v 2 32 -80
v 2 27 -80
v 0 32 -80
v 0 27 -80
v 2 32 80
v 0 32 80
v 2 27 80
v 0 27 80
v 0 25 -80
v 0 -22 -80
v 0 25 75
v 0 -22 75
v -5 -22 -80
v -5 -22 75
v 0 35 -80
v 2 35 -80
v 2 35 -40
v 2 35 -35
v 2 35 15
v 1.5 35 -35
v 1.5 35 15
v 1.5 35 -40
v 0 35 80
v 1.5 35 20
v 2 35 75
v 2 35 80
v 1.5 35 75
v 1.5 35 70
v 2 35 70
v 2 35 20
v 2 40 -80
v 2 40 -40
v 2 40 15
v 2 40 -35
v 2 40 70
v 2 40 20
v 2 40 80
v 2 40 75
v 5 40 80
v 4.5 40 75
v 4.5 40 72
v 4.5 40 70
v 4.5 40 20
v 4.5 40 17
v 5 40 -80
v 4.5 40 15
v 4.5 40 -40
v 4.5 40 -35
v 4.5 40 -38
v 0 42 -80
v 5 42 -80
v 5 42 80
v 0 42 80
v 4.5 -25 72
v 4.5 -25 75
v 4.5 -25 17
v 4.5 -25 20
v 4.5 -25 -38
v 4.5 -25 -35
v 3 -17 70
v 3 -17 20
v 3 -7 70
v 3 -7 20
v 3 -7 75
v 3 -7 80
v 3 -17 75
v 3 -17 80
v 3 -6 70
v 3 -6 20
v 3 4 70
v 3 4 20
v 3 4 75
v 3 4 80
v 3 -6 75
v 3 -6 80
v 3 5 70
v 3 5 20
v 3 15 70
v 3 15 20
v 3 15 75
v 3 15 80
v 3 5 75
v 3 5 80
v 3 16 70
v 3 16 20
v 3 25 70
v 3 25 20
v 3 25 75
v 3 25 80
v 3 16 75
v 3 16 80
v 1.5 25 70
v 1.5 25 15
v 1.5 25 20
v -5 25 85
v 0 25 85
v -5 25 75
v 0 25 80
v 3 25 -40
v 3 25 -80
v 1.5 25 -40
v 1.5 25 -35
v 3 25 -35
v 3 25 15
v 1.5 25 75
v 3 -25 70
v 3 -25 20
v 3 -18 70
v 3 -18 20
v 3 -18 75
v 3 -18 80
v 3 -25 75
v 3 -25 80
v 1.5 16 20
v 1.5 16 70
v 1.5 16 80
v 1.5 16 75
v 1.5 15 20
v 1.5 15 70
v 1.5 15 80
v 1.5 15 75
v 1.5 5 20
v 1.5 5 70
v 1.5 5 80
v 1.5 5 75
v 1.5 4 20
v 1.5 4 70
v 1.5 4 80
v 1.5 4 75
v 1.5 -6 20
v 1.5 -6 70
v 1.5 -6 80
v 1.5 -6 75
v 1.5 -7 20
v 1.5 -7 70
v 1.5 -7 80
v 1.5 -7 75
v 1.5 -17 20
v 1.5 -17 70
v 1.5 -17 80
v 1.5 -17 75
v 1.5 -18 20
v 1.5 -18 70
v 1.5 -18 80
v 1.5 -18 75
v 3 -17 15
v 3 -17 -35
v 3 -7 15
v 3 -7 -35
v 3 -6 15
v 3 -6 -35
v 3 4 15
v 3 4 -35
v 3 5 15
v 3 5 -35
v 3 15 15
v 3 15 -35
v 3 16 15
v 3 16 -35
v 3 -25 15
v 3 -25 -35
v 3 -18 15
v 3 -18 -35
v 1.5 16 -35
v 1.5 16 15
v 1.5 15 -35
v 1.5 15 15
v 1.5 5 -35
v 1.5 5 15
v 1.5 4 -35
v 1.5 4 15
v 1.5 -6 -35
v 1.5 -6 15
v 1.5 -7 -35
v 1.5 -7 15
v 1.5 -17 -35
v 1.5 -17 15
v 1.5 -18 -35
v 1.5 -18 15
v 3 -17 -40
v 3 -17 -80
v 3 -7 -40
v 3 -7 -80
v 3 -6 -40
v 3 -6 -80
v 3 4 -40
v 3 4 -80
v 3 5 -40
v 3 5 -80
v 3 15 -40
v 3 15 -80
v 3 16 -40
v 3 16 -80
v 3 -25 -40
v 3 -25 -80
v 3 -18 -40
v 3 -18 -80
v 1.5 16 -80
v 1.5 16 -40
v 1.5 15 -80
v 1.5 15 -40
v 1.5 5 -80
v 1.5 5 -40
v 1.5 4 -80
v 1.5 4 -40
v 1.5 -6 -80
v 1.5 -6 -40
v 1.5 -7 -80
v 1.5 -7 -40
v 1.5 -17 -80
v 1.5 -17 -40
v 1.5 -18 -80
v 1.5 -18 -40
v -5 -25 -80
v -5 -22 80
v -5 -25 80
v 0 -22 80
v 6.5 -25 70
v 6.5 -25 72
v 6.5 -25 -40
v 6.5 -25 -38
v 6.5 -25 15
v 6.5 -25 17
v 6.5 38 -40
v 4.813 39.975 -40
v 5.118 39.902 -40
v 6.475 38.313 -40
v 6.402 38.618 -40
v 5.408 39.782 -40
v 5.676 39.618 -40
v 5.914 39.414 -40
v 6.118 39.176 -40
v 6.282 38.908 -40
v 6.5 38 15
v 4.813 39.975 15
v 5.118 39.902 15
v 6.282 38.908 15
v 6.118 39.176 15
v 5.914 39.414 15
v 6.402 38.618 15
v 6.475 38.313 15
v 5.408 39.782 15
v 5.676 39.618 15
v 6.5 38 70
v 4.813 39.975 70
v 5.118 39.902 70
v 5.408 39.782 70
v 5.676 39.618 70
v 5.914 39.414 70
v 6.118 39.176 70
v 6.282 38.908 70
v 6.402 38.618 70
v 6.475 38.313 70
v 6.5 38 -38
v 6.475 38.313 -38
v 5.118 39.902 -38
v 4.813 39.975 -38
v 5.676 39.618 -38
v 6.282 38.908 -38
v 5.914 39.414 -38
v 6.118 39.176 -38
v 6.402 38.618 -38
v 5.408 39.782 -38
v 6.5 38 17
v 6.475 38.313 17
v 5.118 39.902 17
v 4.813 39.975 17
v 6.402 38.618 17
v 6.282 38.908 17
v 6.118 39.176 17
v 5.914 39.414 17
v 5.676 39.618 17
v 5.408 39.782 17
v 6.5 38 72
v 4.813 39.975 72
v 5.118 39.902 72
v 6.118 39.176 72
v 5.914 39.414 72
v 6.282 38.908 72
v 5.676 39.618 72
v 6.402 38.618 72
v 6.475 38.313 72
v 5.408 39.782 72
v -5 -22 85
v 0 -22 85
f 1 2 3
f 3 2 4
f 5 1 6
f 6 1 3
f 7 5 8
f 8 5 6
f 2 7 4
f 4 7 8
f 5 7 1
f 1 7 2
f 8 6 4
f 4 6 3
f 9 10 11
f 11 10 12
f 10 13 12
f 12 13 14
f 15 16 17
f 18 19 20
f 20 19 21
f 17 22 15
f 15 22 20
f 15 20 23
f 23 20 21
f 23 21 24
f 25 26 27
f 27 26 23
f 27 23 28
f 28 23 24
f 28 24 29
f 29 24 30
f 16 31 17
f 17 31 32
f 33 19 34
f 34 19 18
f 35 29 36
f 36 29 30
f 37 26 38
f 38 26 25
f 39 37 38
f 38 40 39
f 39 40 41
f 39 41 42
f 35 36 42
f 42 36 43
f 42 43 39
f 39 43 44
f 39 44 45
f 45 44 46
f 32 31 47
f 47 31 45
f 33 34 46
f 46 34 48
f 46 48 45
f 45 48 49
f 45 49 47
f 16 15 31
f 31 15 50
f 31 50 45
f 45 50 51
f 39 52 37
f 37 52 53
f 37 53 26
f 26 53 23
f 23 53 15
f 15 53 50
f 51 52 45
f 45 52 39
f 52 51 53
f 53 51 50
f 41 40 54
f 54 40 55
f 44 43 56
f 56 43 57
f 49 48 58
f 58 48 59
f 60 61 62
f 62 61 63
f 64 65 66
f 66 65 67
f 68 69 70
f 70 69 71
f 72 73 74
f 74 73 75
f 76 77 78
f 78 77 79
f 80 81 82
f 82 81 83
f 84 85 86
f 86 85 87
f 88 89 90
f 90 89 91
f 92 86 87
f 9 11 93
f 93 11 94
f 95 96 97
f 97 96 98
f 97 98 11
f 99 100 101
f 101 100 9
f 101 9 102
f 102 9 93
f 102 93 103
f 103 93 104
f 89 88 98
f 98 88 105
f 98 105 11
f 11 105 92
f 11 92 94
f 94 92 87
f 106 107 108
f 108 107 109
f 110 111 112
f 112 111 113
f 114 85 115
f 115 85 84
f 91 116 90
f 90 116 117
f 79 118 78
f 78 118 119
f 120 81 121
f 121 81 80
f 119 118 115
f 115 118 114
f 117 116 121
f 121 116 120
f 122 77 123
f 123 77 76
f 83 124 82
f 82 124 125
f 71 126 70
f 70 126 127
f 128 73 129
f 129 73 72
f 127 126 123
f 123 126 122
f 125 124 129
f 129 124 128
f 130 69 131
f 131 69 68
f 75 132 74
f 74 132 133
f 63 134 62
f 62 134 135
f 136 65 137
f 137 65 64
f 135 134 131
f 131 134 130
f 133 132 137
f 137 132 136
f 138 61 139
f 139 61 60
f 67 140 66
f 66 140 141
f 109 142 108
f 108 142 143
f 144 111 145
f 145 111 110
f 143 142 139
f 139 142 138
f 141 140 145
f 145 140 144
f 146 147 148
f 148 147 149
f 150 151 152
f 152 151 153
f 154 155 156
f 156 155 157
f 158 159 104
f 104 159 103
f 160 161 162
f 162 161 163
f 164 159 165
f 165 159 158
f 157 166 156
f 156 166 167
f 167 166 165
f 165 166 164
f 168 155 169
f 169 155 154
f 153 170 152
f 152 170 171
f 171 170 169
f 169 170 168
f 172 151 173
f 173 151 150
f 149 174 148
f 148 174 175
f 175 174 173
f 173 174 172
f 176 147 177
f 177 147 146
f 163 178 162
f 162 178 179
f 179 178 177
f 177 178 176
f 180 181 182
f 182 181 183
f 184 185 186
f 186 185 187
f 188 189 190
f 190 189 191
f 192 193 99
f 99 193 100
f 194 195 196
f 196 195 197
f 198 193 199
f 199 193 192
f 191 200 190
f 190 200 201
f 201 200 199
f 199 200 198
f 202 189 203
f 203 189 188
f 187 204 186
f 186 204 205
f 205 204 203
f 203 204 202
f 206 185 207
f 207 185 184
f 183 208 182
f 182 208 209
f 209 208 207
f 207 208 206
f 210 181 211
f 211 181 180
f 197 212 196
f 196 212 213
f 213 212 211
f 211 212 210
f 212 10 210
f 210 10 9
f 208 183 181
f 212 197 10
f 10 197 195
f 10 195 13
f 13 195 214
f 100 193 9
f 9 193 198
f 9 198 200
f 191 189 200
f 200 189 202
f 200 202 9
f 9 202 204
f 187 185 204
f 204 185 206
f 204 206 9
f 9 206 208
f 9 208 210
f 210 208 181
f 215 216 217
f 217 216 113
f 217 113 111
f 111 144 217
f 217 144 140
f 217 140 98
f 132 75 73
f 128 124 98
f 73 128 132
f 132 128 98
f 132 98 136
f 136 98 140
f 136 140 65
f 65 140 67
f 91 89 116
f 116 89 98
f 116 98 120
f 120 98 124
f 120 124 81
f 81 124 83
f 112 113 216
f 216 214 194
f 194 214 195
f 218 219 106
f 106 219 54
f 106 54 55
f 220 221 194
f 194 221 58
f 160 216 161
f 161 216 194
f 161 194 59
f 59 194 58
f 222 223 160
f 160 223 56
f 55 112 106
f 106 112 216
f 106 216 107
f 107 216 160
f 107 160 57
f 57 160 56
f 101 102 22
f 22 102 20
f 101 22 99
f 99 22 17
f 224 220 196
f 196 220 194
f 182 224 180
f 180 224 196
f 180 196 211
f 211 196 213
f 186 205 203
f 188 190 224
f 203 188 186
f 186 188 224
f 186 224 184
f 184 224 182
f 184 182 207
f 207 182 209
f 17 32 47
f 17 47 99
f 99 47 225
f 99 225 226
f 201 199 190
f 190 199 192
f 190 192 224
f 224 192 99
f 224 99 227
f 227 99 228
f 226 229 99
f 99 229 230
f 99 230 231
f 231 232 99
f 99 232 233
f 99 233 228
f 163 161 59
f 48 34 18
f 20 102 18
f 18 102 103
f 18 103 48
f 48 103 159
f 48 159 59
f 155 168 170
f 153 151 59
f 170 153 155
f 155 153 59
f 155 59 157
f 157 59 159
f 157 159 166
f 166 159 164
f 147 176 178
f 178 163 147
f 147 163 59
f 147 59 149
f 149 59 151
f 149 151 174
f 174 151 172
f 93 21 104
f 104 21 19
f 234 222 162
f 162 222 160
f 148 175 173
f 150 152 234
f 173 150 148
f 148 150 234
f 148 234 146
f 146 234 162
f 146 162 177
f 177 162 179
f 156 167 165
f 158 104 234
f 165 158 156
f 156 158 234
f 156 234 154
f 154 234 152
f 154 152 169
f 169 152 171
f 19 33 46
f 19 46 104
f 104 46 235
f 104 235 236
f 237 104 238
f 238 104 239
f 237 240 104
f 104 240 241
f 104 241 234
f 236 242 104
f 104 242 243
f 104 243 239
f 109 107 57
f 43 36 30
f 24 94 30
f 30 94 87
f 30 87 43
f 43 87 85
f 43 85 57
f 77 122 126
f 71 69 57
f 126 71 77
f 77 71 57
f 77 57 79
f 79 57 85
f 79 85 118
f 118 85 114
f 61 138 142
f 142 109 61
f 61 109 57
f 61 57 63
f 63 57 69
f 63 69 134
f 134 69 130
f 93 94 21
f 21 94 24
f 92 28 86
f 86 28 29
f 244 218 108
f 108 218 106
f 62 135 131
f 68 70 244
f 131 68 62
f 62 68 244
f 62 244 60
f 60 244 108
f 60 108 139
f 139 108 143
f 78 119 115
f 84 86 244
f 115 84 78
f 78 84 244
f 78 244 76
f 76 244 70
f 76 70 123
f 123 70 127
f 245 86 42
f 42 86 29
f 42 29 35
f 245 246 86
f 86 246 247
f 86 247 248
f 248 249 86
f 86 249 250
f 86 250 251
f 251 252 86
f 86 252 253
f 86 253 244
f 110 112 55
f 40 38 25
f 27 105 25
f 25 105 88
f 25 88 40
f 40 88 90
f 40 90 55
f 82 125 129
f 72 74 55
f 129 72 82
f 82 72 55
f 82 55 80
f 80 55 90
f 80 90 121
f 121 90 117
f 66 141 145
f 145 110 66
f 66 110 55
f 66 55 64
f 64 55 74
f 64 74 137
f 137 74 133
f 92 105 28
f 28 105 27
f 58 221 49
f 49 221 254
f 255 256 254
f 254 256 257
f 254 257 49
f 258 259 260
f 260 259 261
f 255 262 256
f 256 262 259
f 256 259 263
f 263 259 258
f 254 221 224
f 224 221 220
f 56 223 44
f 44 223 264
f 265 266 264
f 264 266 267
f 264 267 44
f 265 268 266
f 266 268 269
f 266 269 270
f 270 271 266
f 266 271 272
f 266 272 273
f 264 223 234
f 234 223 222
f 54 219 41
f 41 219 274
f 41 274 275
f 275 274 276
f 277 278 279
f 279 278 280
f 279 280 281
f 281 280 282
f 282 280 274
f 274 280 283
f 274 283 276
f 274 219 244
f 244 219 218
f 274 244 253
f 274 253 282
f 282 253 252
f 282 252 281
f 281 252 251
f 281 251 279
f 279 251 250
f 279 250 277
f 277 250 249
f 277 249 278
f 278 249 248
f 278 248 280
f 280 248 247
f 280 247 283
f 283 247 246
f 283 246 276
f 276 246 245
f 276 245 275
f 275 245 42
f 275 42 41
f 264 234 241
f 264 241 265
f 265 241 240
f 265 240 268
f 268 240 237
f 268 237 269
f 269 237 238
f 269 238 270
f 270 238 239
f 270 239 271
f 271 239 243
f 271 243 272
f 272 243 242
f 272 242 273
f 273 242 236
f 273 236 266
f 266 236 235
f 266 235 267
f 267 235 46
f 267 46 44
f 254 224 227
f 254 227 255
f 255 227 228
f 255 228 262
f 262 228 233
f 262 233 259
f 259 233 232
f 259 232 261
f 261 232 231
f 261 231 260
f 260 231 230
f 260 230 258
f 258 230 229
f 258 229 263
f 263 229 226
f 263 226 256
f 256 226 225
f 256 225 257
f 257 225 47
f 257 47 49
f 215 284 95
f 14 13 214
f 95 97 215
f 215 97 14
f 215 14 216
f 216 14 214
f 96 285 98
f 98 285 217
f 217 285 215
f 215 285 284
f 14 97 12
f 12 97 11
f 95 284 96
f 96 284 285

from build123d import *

# Parameters (mm, degrees)
SKETCH1_W             = 160
SKETCH1_H             = 50
BOSS_EXTRUDE1_DEPTH   = 3
SKETCH2_W             = 160
SKETCH2_H             = 1
CUT_EXTRUDE1_DEPTH    = 1.5
SKETCH3_W             = 5
SKETCH3_H             = 65
BOSS_EXTRUDE2_DEPTH   = 1.5
SKETCH4_W             = 2
SKETCH4_H             = 65
BOSS_EXTRUDE3_DEPTH   = 2
FILLET1_R             = 2
SKETCH5_W             = 160
SKETCH5_H             = 5
BOSS_EXTRUDE4_DEPTH   = 2
BOSS_EXTRUDE4_2_DEPTH = 2
SKETCH7_W             = 160
SKETCH7_H             = 3
BOSS_EXTRUDE5_DEPTH   = 5
SKETCH8_W             = 5
SKETCH8_H             = 160
BOSS_EXTRUDE6_DEPTH   = 2
SKETCH11_W            = 10
SKETCH11_H            = 47
BOSS_EXTRUDE7_DEPTH   = 5


with BuildPart() as part:
    # Sketch1 → Boss-Extrude1 (new body)
    with BuildSketch(Plane(origin=(0, 0, 0), x_dir=(0, 0, -1), z_dir=(1, 0, 0))):
        Rectangle(SKETCH1_W, SKETCH1_H)
    extrude(amount=BOSS_EXTRUDE1_DEPTH)

    # Sketch2 → Cut-Extrude1 (cut)
    with BuildSketch(Plane(origin=(3, 0, 0), x_dir=(0, 0, -1), z_dir=(1, 0, 0))):
        with Locations((0, -17.5)):
            Rectangle(SKETCH2_W, SKETCH2_H)
        with Locations((0, -6.5)):
            Rectangle(SKETCH2_W, SKETCH2_H)
        with Locations((0, 4.5)):
            Rectangle(SKETCH2_W, SKETCH2_H)
        with Locations((0, 15.5)):
            Rectangle(SKETCH2_W, SKETCH2_H)
    extrude(amount=-CUT_EXTRUDE1_DEPTH, mode=Mode.SUBTRACT)

    # Sketch3 → Boss-Extrude2 (add, symmetric)
    with BuildSketch(Plane(origin=(3, 0, 0), x_dir=(0, 0, -1), z_dir=(1, 0, 0))):
        with Locations((-72.5, 7.5)):
            Rectangle(SKETCH3_W, SKETCH3_H)
        with Locations((37.5, 7.5)):
            Rectangle(SKETCH3_W, SKETCH3_H)
        with Locations((-17.5, 7.5)):
            Rectangle(SKETCH3_W, SKETCH3_H)
    extrude(amount=BOSS_EXTRUDE2_DEPTH, both=True)

    # Sketch4 → Boss-Extrude3 (add)
    with BuildSketch(Plane(origin=(4.5, 0, 0), x_dir=(0, 0, -1), z_dir=(1, 0, 0))):
        with Locations((39, 7.5)):
            Rectangle(SKETCH4_W, SKETCH4_H)
        with Locations((-16, 7.5)):
            Rectangle(SKETCH4_W, SKETCH4_H)
        with Locations((-71, 7.5)):
            Rectangle(SKETCH4_W, SKETCH4_H)
    extrude(amount=BOSS_EXTRUDE3_DEPTH)

    # Fillet1
    fillet1_edges = [part.edges().sort_by_distance(p)[0] for p in [
        (6.5, 40, 71),
        (6.5, 40, 16),
        (6.5, 40, -39),
    ]]
    fillet(fillet1_edges, radius=FILLET1_R)

    # Sketch7 → Boss-Extrude5 (add)
    with BuildSketch(Plane.ZY):
        with Locations((0, -23.5)):
            Rectangle(SKETCH7_W, SKETCH7_H)
    extrude(amount=BOSS_EXTRUDE5_DEPTH)



with BuildPart() as body_2:
    # Sketch5 → Boss-Extrude4 (new body)
    with BuildSketch(Plane.ZY):
        with Locations((0, 29.5)):
            Rectangle(SKETCH5_W, SKETCH5_H)
    extrude(amount=-BOSS_EXTRUDE4_DEPTH)


with BuildPart() as body_3:
    # Sketch5 → Boss-Extrude4 2 (new body)
    with BuildSketch(Plane.ZY):
        with Locations((0, 37.5)):
            Rectangle(SKETCH5_W, SKETCH5_H)
    extrude(amount=-BOSS_EXTRUDE4_2_DEPTH)


with BuildPart() as part_1:
    add(part.part)

    add(body_3.part)  # Boss-Extrude6 merges body 3
    # Sketch8 → Boss-Extrude6 (add)
    with BuildSketch(Plane(origin=(0, 40, 0), x_dir=(1, 0, 0), z_dir=(0, 1, 0))):
        with Locations((2.5, 0)):
            Rectangle(SKETCH8_W, SKETCH8_H)
    extrude(amount=BOSS_EXTRUDE6_DEPTH)

    # Sketch11 → Boss-Extrude7 (add)
    with BuildSketch(Plane.ZY):
        with Locations((80, 1.5)):
            Rectangle(SKETCH11_W, SKETCH11_H)
    extrude(amount=BOSS_EXTRUDE7_DEPTH)


solid = Compound([body_2.part, part_1.part])
